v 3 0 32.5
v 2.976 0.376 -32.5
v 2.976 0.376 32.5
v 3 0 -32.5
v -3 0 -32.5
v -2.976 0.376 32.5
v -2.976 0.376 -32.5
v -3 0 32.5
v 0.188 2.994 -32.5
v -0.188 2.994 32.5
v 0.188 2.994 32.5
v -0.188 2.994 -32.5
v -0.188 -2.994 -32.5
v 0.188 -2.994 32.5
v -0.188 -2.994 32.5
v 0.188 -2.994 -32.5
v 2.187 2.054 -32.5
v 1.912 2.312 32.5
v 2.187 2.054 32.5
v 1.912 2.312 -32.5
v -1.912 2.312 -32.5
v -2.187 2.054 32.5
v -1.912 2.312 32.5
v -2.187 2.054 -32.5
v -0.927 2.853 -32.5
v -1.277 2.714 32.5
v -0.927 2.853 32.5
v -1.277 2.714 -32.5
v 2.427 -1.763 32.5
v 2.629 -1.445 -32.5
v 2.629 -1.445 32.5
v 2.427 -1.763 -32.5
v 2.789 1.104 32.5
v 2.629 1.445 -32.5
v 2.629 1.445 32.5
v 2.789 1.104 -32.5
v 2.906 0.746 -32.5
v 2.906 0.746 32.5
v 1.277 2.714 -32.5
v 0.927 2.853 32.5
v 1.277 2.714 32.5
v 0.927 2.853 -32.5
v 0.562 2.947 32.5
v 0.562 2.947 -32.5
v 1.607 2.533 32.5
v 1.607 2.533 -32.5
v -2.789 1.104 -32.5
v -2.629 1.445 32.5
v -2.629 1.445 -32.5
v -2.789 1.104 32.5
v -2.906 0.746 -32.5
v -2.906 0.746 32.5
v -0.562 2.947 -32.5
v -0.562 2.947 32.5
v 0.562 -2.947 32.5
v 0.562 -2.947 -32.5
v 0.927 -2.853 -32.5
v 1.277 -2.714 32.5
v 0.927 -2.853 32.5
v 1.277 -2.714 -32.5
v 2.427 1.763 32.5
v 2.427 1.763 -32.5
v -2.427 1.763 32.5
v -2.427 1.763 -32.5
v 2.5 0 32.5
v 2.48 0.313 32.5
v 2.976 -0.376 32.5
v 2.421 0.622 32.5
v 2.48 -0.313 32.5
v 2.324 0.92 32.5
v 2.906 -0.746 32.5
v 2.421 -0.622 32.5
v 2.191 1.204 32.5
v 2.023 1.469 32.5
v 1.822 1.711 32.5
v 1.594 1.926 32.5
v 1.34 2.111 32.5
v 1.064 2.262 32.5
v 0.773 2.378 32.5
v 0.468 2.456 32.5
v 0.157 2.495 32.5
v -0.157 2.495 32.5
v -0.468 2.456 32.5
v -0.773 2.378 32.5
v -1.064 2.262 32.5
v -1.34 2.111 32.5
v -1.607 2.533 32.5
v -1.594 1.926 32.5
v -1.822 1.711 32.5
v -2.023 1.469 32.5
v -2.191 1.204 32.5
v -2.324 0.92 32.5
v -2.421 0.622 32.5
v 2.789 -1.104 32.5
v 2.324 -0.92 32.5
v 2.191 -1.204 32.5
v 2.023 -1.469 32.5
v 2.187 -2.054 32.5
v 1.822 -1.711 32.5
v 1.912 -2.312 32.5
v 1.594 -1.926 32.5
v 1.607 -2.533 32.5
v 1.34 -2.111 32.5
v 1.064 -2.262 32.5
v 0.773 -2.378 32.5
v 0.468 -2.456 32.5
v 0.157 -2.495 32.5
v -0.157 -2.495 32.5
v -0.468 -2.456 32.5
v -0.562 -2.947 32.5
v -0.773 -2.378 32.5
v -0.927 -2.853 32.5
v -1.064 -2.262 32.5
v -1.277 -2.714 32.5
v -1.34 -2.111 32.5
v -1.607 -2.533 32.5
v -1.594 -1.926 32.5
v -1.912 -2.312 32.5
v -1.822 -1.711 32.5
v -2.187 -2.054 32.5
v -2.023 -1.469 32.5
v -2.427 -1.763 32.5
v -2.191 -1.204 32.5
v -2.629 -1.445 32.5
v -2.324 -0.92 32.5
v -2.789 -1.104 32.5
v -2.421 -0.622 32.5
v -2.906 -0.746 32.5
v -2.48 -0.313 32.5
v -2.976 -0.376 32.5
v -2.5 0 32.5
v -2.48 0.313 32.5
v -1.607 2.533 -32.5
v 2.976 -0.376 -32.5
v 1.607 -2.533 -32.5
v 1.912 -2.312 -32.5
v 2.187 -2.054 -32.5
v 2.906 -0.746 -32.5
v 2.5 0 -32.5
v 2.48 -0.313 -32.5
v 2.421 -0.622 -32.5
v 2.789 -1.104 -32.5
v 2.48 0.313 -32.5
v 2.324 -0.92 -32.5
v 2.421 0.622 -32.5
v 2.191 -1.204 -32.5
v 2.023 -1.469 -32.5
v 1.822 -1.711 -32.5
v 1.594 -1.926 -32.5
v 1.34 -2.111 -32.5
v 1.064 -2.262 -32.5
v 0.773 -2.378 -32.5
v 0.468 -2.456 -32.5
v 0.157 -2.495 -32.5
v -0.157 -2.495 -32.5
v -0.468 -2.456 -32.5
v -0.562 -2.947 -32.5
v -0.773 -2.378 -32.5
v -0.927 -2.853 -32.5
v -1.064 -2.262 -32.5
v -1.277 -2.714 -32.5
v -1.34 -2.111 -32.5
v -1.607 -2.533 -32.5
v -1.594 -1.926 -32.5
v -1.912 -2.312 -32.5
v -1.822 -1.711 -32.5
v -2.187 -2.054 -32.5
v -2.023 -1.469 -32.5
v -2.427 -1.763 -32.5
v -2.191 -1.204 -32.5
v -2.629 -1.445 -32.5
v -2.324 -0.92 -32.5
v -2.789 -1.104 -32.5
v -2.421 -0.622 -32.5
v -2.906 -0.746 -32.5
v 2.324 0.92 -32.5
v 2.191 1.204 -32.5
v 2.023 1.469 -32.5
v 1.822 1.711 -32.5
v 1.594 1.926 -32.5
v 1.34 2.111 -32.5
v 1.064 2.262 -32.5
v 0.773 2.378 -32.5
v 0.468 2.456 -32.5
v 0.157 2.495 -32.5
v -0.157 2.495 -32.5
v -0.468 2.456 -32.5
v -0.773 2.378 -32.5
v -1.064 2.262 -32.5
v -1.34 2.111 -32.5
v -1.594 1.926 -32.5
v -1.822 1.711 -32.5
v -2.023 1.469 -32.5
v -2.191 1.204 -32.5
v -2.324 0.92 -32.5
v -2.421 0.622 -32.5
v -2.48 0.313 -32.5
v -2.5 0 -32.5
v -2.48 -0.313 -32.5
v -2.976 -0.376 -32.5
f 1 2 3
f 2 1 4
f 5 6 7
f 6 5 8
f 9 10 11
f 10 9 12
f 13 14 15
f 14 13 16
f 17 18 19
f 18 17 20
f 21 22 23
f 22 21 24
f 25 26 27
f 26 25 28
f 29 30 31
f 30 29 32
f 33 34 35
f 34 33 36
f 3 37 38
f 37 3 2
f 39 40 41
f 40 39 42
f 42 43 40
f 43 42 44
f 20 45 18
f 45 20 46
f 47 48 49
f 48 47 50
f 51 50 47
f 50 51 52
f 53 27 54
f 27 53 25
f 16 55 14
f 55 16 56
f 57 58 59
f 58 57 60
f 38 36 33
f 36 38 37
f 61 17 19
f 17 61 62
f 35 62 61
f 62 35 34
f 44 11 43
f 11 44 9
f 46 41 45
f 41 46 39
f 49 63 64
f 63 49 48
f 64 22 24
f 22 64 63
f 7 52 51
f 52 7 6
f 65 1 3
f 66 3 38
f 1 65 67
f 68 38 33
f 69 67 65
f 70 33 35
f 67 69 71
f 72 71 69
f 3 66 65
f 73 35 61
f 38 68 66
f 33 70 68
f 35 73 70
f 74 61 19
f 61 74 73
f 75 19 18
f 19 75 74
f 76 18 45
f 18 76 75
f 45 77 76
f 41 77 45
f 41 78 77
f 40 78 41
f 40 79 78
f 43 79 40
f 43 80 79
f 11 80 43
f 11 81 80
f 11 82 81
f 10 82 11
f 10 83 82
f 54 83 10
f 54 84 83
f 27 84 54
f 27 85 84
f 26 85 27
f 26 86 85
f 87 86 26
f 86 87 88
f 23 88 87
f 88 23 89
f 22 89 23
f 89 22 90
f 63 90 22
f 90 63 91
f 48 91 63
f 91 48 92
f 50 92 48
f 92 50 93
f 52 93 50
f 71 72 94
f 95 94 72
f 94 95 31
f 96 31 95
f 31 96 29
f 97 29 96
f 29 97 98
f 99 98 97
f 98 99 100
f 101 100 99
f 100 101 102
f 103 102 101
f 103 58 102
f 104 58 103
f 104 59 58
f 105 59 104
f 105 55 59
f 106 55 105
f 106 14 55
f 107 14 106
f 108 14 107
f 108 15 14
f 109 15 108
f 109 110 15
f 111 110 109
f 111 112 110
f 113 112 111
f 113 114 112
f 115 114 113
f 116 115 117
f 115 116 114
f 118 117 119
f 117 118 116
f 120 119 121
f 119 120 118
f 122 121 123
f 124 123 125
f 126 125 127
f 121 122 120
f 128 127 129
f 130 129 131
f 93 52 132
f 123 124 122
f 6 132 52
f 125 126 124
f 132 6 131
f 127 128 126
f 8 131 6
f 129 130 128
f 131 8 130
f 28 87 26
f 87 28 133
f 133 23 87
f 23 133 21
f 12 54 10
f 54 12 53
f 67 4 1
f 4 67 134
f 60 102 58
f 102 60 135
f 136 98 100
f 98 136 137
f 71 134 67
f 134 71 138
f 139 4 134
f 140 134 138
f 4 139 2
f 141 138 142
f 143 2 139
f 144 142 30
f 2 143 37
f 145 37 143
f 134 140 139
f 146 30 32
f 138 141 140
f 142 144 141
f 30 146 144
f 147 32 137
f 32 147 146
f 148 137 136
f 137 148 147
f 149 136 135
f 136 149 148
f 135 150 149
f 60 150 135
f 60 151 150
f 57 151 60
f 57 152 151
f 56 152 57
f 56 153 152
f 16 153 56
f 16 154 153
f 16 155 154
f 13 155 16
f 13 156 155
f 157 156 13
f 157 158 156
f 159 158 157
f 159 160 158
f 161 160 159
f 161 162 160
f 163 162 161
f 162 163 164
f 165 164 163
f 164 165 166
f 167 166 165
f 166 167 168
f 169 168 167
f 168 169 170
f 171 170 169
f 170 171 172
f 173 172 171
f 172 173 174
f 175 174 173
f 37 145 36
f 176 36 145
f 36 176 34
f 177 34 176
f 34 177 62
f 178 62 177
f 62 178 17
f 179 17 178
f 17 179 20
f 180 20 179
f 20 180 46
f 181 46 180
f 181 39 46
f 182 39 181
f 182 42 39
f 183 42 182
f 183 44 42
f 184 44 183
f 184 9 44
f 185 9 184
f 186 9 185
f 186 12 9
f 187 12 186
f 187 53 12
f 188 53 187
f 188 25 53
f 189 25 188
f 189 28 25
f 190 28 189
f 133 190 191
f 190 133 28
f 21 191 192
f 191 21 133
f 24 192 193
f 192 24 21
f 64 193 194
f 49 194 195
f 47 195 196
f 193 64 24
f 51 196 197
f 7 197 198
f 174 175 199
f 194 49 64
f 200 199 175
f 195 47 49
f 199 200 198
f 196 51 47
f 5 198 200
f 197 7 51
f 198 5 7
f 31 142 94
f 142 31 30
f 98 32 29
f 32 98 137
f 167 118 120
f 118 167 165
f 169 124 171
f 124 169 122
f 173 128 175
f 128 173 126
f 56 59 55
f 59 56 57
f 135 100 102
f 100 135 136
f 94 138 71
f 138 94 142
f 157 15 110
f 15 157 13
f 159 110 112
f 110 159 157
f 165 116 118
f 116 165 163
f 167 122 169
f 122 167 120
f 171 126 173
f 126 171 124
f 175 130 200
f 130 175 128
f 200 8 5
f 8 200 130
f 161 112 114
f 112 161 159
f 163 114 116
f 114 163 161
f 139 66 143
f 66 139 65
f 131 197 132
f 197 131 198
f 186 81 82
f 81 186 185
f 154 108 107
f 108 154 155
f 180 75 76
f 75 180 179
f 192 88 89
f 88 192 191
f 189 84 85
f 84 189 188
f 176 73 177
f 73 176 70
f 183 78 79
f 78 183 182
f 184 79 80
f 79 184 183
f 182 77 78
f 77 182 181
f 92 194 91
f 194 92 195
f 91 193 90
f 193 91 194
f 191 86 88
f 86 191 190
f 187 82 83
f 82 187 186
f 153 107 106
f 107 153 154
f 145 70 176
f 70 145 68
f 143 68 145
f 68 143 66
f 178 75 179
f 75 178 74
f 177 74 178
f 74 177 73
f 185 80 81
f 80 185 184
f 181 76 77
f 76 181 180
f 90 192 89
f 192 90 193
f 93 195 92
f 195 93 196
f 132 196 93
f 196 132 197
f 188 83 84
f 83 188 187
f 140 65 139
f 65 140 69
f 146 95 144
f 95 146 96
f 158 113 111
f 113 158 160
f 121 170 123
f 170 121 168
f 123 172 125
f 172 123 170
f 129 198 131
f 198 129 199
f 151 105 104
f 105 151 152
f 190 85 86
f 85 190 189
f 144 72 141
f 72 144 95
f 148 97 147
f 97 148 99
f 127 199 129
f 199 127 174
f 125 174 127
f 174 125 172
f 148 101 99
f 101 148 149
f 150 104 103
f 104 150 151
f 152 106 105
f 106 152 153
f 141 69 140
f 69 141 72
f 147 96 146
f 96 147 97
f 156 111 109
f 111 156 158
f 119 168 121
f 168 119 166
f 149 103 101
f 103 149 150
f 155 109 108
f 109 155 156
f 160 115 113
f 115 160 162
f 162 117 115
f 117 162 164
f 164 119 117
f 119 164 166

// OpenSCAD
$fn = 50;


difference() {
	union() {
		translate(v = [0, 0, -32.5000000000]) {
			cylinder(h = 65, r = 3.0000000000);
		}
	}
	union() {
		translate(v = [0, 0, -100.0000000000]) {
			cylinder(h = 200, r = 2.5000000000);
		}
	}
}
